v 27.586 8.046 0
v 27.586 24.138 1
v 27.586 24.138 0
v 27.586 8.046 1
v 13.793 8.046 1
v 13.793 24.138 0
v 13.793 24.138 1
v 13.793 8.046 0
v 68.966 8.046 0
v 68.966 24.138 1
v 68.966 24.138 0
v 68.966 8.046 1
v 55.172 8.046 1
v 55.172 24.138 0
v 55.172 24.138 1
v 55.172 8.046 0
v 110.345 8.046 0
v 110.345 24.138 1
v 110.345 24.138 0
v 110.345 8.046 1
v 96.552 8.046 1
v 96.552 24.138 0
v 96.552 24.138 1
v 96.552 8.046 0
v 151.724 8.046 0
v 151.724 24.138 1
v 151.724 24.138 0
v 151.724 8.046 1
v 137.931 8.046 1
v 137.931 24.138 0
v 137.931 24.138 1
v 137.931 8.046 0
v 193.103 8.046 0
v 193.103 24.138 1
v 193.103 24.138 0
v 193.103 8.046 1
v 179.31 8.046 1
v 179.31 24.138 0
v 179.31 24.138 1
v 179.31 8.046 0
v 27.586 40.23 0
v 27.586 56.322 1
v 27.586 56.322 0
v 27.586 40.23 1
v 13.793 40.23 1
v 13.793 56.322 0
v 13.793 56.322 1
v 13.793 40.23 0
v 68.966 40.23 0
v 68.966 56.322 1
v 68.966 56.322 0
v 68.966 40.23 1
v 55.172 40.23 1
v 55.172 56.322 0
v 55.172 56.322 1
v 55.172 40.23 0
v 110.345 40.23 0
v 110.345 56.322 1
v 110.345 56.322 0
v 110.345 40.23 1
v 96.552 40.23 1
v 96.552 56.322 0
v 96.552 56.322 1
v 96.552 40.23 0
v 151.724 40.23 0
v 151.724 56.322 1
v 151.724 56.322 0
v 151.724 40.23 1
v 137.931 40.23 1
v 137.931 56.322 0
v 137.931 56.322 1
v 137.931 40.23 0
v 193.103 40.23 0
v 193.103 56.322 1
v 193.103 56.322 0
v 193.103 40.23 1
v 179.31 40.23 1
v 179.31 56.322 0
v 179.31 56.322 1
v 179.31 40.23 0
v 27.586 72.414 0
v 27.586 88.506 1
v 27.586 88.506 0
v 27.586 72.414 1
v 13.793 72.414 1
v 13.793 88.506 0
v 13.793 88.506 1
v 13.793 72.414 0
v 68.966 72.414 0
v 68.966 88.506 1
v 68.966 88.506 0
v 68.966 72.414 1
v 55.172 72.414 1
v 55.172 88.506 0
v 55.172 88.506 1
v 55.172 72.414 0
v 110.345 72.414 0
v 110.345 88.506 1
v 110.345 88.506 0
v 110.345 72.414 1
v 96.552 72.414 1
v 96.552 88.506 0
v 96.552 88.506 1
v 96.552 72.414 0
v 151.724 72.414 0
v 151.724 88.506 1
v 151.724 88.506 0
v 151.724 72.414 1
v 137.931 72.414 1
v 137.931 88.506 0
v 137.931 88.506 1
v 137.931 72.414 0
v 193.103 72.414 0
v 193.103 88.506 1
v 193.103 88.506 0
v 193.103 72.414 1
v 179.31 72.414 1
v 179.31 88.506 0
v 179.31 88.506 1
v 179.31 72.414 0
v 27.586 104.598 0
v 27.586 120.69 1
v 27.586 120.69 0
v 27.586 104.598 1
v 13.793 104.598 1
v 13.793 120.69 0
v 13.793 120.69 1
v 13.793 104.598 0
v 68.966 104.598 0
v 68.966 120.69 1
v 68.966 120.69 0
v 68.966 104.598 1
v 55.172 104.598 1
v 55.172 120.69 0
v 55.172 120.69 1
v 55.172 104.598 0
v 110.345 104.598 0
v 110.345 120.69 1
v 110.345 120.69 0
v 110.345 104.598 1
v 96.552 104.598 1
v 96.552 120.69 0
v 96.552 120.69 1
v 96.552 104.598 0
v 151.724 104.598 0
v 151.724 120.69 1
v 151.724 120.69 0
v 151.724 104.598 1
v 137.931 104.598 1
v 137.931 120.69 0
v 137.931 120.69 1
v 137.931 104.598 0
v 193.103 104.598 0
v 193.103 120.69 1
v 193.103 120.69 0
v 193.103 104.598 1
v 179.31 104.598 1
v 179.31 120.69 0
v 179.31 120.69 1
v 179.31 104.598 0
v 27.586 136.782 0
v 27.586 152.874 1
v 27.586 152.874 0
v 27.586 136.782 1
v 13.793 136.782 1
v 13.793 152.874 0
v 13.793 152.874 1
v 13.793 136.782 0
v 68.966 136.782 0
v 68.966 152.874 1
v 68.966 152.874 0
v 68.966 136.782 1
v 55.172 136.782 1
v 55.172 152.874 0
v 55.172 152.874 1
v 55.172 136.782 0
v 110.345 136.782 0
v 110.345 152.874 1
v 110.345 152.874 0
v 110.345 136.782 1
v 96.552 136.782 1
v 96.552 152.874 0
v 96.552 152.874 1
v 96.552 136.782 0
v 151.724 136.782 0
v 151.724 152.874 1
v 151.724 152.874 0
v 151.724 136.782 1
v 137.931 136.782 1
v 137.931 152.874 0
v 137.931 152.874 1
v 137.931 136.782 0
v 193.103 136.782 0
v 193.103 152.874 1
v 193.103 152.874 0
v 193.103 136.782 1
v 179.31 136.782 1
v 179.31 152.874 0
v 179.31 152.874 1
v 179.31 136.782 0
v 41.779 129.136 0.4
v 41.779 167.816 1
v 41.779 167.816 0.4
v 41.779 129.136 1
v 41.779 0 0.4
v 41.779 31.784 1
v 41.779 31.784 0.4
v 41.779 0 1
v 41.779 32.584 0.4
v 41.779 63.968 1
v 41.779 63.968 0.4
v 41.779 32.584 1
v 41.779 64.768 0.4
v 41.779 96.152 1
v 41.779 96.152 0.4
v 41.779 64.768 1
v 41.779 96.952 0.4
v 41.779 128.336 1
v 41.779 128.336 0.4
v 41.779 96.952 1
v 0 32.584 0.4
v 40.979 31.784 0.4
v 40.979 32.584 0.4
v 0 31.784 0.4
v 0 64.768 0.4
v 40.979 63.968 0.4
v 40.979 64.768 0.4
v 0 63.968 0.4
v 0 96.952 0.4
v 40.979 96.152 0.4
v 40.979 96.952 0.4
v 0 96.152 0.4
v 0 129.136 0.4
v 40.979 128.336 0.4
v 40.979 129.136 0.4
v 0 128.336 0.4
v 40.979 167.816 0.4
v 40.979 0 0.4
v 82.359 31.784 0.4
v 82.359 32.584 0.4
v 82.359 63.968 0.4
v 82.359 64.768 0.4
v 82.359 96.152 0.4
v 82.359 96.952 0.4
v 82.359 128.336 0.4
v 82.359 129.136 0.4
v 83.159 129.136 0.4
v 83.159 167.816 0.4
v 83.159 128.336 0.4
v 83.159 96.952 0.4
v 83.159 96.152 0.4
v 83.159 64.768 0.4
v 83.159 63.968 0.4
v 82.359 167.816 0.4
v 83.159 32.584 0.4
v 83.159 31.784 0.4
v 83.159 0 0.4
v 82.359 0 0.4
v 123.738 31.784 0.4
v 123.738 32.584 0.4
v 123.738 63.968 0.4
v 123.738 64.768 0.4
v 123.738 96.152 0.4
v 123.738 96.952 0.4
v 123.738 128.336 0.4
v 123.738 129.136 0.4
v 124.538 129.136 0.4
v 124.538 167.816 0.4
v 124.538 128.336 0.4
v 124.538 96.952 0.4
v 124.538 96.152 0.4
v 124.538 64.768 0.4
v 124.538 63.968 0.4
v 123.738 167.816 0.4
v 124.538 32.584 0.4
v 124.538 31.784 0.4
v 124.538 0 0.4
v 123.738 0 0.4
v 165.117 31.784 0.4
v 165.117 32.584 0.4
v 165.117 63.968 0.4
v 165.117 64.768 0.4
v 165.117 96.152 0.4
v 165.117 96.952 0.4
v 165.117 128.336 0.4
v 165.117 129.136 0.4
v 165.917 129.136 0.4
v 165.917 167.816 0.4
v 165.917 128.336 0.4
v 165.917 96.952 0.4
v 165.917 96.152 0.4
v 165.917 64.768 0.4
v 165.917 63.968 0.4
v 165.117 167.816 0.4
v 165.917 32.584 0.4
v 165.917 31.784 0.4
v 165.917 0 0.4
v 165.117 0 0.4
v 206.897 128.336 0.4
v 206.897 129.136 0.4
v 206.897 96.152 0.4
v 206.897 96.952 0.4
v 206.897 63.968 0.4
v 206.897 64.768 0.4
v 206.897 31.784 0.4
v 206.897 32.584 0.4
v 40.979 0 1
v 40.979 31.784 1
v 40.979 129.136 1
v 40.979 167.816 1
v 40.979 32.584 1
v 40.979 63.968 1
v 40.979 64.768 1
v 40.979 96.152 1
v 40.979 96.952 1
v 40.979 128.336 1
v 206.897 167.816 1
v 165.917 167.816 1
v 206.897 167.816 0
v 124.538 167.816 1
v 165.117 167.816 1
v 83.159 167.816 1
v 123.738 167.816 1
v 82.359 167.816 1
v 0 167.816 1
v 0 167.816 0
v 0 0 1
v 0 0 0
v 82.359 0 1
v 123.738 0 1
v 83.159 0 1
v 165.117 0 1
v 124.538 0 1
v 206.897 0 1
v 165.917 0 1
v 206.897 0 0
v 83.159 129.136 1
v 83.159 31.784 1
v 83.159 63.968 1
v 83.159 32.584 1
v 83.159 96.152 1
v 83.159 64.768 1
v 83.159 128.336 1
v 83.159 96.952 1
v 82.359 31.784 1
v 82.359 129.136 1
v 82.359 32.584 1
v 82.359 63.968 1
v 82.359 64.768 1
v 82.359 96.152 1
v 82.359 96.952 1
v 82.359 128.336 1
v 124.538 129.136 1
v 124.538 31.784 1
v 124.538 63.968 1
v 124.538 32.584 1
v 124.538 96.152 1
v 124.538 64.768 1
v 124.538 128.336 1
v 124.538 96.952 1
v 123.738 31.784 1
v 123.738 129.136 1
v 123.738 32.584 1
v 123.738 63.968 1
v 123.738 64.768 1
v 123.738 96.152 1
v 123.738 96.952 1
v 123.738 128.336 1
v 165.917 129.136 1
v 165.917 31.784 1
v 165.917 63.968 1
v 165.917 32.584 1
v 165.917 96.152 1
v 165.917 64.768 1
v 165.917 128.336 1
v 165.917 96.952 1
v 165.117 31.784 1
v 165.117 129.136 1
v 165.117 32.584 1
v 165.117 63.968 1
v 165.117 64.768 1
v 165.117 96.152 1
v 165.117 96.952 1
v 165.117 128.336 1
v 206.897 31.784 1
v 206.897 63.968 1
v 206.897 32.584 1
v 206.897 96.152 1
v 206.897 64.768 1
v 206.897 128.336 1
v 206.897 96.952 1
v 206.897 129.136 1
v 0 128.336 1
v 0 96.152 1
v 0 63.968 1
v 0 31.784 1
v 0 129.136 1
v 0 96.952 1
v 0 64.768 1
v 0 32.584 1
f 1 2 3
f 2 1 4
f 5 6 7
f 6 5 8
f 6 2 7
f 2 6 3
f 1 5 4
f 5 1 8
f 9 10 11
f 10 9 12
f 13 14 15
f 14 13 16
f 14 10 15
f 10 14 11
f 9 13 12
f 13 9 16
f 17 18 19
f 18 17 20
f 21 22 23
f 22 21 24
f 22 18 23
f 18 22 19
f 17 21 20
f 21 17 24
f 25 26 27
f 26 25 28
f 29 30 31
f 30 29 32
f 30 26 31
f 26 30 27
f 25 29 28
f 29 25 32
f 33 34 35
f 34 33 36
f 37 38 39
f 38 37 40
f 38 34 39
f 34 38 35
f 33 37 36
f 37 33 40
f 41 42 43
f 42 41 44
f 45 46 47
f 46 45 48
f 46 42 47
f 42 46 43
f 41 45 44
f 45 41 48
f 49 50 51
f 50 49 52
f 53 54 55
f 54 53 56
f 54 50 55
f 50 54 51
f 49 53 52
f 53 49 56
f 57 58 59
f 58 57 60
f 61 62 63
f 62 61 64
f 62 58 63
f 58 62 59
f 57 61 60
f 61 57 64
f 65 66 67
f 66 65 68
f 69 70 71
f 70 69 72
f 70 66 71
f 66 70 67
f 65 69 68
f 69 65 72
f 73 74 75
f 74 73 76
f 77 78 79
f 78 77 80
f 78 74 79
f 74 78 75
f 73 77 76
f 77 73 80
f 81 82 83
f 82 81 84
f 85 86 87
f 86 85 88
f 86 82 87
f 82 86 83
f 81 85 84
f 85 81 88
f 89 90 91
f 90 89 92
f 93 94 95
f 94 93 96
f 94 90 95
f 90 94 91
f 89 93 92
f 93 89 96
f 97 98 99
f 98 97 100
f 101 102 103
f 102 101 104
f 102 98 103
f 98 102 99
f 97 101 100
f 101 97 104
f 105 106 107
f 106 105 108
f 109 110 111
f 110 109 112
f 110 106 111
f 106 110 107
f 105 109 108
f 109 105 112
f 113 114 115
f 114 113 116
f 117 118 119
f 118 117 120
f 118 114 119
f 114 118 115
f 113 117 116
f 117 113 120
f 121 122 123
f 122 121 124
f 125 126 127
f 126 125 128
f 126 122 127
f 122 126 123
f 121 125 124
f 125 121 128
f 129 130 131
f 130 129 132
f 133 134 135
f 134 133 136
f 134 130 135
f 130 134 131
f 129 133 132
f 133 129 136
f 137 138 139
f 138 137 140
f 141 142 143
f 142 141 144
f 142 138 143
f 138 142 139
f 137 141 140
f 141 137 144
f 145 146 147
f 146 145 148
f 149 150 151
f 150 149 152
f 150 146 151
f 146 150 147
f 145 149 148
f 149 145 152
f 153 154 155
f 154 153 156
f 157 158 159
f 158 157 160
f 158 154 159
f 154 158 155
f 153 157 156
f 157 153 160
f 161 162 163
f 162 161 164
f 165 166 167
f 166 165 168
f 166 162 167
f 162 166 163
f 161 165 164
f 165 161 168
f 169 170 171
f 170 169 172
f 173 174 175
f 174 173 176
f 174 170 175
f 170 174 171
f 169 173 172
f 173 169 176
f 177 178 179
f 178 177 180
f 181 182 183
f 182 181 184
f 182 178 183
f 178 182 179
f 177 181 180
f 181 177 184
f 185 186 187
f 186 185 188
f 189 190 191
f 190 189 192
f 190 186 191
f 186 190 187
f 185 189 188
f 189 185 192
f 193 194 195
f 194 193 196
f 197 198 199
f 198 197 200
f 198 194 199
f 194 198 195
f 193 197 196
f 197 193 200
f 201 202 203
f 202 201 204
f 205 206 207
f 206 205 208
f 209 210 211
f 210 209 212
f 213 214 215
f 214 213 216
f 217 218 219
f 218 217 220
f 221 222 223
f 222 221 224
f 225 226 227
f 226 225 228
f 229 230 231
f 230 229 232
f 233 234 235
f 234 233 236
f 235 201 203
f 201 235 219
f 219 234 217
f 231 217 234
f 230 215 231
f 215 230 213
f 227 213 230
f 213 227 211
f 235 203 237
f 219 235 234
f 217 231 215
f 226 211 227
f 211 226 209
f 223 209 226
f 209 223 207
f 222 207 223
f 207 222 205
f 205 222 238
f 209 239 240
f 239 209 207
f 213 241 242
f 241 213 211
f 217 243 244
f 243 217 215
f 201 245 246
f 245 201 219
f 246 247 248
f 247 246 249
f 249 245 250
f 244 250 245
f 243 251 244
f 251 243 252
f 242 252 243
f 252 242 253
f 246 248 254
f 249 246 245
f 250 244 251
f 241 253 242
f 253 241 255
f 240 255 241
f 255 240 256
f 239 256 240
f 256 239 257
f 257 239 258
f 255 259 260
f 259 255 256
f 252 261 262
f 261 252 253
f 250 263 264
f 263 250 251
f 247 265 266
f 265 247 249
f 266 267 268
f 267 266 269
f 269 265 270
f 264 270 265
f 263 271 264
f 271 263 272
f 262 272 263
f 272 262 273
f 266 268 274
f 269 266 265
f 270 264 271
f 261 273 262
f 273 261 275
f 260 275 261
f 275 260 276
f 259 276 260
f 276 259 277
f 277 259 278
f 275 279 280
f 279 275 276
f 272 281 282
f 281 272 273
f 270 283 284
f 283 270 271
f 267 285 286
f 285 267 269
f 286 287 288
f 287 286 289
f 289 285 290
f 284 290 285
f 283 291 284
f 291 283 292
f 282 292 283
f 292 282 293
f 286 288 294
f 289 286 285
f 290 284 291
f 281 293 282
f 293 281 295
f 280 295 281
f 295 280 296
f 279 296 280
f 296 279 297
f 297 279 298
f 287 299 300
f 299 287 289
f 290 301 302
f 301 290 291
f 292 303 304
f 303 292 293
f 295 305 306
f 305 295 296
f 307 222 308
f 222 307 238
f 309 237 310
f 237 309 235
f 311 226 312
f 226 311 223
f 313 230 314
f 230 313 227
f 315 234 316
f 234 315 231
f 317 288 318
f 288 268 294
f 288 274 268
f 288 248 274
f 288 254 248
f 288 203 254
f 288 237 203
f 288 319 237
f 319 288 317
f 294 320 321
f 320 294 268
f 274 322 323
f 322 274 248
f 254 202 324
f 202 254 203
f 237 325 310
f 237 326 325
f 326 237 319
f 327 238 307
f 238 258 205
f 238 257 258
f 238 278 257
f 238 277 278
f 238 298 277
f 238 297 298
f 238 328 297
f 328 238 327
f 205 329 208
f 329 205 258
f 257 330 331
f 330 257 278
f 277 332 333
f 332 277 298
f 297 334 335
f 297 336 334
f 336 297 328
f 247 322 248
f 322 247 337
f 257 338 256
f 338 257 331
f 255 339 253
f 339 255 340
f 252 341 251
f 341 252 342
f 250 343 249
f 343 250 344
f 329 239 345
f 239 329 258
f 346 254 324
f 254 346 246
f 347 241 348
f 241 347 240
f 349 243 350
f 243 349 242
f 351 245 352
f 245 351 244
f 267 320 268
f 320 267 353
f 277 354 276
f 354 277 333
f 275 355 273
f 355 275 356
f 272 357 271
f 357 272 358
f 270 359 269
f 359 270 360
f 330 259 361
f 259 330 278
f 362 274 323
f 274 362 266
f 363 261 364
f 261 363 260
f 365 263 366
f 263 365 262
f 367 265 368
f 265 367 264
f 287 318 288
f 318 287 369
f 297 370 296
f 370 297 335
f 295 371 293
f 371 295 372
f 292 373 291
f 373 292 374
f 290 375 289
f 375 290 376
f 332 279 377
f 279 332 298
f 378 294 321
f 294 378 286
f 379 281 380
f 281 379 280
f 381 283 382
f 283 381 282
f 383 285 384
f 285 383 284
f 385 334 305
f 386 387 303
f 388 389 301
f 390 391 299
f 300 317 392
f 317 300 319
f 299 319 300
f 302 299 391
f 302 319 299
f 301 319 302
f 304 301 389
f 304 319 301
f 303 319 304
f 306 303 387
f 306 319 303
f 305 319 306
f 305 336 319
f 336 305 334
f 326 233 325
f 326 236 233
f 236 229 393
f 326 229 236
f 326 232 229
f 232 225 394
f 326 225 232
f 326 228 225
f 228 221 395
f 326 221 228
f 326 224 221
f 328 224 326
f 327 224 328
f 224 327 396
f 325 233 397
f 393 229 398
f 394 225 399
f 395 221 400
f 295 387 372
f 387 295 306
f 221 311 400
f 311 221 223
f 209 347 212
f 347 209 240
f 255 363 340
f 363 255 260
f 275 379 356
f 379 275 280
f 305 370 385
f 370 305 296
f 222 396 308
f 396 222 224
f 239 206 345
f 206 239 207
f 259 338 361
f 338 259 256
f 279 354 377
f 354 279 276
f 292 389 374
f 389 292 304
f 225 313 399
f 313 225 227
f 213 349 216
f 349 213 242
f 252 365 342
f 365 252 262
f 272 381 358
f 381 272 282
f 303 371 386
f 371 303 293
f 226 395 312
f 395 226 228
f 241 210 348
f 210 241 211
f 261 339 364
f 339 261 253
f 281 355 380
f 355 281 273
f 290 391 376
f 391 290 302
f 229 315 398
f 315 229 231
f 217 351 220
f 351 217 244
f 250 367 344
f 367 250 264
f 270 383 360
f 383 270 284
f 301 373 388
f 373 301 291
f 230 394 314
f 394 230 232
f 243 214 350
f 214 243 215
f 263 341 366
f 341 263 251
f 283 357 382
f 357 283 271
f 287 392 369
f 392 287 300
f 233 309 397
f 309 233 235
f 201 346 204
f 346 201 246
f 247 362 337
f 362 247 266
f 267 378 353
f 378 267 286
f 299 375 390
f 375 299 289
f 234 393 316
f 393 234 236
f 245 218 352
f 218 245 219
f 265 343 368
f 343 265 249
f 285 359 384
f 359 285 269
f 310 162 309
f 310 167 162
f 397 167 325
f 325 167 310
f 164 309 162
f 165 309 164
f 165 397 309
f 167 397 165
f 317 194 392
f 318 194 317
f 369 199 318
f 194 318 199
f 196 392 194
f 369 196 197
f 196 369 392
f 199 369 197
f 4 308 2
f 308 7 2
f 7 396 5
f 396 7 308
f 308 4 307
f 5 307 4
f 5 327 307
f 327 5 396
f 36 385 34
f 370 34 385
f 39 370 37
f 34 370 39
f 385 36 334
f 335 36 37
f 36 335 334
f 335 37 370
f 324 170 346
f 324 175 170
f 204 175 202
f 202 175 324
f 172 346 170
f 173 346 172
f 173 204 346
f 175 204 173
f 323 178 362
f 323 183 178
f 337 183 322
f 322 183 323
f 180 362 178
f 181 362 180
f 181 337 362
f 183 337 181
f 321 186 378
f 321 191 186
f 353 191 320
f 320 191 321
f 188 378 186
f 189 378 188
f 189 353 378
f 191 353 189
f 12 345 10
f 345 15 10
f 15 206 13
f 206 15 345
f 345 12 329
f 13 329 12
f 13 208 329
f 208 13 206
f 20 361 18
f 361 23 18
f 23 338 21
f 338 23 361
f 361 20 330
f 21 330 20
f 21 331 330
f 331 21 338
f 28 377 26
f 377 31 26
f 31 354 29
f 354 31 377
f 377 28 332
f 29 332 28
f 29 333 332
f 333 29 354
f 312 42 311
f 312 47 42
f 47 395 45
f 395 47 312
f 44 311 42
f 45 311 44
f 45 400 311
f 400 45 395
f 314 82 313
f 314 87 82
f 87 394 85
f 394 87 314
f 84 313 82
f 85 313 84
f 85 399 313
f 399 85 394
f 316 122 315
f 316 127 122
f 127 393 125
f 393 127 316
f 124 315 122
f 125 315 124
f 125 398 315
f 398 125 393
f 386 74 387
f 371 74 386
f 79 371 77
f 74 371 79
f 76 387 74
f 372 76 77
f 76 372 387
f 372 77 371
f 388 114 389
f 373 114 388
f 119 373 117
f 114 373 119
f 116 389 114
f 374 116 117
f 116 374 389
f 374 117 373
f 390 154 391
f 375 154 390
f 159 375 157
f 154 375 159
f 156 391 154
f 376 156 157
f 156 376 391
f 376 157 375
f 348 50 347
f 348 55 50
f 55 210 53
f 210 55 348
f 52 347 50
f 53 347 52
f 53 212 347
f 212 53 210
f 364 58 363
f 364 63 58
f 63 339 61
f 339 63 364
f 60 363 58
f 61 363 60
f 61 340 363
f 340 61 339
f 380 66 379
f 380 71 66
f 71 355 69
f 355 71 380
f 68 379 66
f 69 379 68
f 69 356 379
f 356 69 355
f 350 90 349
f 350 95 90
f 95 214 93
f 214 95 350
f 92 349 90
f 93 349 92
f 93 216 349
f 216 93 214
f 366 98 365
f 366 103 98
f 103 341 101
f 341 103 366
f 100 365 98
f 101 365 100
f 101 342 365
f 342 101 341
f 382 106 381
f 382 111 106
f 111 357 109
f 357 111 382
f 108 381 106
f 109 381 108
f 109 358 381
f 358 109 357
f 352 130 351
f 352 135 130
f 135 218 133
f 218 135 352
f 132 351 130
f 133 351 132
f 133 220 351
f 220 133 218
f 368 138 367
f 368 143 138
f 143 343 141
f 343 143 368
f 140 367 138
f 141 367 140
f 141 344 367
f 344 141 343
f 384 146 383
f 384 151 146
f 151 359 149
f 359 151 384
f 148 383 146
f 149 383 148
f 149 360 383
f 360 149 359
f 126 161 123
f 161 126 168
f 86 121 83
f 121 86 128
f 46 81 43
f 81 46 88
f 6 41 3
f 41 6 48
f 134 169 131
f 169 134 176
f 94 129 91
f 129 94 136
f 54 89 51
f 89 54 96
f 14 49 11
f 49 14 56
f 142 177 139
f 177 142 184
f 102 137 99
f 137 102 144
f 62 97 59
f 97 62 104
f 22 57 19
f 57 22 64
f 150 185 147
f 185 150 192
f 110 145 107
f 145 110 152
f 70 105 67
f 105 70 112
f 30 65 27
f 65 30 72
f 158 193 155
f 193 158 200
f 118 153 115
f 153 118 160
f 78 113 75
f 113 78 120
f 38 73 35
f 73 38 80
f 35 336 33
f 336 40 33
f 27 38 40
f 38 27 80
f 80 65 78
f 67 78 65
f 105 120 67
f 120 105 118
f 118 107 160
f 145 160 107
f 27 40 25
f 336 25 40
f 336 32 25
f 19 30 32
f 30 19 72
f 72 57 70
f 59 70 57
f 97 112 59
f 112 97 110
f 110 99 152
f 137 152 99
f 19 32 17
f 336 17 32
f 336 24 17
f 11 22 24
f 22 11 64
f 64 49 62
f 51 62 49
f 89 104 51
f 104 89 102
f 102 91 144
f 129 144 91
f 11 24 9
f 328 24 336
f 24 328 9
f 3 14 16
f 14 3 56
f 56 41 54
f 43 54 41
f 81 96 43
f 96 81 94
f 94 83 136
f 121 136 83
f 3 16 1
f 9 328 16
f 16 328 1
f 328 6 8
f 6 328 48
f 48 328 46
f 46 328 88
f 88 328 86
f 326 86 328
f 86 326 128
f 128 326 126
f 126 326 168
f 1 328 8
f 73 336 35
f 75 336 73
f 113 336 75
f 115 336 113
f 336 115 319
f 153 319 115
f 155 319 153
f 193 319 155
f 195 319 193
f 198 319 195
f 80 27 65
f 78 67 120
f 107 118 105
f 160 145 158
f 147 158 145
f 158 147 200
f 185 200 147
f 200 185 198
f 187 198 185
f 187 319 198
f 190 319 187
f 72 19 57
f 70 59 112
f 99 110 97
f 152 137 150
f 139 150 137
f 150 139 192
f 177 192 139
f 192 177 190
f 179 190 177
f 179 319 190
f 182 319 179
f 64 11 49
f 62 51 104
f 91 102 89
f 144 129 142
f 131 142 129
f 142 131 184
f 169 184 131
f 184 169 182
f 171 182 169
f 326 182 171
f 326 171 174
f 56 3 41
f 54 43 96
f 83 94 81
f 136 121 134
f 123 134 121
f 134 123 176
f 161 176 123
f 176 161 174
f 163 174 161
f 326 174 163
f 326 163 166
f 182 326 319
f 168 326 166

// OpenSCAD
/*
 * PROMPT: H0 scale (1:87) Eastern European prefab apartment block — back wall panel, flat for FDM printing. Five bays wide, five floors tall with parapet, regular windows on all bays and all floors (no door). Vertical panel-joint grooves at bay boundaries, horizontal floor-line grooves. Panel lies flat, exterior face up.
 */

$fn = 32;

S          = 1/87;
panel_t    = 1.0;

floors     = 5;
bld_w      = 18000 * S;   // 206.9 mm
floor_h    = 2800  * S;   //  32.2 mm
bld_h      = floors * floor_h;
parapet_h  = 600   * S;   //   6.9 mm
wall_panel_h = bld_h + parapet_h;

n_bays     = 5;
bay_w      = bld_w / n_bays;   // 41.4 mm

win_w      = 1200 * S;   // 13.8 mm
win_h      = 1400 * S;   // 16.1 mm

groove_w   = 0.8;
groove_d   = 0.6;

module wall_back() {
    difference() {
        // Base slab
        cube([bld_w, wall_panel_h, panel_t]);

        // Windows: all floors, all bays
        for (f = [0 : floors - 1]) {
            for (b = [0 : n_bays - 1]) {
                translate([
                    b * bay_w + (bay_w - win_w) / 2,
                    f * floor_h + (floor_h - win_h) / 2,
                    -1
                ])
                cube([win_w, win_h, panel_t + 2]);
            }
        }

        // Vertical panel-joint grooves on exterior face (Z = panel_t - groove_d)
        for (b = [1 : n_bays - 1]) {
            translate([
                b * bay_w - groove_w / 2,
                0,
                panel_t - groove_d
            ])
            cube([groove_w, wall_panel_h, groove_d + 1]);
        }

        // Horizontal floor-line grooves on exterior face
        for (f = [1 : floors - 1]) {
            translate([
                0,
                f * floor_h - groove_w / 2,
                panel_t - groove_d
            ])
            cube([bld_w, groove_w, groove_d + 1]);
        }
    }
}

wall_back();
